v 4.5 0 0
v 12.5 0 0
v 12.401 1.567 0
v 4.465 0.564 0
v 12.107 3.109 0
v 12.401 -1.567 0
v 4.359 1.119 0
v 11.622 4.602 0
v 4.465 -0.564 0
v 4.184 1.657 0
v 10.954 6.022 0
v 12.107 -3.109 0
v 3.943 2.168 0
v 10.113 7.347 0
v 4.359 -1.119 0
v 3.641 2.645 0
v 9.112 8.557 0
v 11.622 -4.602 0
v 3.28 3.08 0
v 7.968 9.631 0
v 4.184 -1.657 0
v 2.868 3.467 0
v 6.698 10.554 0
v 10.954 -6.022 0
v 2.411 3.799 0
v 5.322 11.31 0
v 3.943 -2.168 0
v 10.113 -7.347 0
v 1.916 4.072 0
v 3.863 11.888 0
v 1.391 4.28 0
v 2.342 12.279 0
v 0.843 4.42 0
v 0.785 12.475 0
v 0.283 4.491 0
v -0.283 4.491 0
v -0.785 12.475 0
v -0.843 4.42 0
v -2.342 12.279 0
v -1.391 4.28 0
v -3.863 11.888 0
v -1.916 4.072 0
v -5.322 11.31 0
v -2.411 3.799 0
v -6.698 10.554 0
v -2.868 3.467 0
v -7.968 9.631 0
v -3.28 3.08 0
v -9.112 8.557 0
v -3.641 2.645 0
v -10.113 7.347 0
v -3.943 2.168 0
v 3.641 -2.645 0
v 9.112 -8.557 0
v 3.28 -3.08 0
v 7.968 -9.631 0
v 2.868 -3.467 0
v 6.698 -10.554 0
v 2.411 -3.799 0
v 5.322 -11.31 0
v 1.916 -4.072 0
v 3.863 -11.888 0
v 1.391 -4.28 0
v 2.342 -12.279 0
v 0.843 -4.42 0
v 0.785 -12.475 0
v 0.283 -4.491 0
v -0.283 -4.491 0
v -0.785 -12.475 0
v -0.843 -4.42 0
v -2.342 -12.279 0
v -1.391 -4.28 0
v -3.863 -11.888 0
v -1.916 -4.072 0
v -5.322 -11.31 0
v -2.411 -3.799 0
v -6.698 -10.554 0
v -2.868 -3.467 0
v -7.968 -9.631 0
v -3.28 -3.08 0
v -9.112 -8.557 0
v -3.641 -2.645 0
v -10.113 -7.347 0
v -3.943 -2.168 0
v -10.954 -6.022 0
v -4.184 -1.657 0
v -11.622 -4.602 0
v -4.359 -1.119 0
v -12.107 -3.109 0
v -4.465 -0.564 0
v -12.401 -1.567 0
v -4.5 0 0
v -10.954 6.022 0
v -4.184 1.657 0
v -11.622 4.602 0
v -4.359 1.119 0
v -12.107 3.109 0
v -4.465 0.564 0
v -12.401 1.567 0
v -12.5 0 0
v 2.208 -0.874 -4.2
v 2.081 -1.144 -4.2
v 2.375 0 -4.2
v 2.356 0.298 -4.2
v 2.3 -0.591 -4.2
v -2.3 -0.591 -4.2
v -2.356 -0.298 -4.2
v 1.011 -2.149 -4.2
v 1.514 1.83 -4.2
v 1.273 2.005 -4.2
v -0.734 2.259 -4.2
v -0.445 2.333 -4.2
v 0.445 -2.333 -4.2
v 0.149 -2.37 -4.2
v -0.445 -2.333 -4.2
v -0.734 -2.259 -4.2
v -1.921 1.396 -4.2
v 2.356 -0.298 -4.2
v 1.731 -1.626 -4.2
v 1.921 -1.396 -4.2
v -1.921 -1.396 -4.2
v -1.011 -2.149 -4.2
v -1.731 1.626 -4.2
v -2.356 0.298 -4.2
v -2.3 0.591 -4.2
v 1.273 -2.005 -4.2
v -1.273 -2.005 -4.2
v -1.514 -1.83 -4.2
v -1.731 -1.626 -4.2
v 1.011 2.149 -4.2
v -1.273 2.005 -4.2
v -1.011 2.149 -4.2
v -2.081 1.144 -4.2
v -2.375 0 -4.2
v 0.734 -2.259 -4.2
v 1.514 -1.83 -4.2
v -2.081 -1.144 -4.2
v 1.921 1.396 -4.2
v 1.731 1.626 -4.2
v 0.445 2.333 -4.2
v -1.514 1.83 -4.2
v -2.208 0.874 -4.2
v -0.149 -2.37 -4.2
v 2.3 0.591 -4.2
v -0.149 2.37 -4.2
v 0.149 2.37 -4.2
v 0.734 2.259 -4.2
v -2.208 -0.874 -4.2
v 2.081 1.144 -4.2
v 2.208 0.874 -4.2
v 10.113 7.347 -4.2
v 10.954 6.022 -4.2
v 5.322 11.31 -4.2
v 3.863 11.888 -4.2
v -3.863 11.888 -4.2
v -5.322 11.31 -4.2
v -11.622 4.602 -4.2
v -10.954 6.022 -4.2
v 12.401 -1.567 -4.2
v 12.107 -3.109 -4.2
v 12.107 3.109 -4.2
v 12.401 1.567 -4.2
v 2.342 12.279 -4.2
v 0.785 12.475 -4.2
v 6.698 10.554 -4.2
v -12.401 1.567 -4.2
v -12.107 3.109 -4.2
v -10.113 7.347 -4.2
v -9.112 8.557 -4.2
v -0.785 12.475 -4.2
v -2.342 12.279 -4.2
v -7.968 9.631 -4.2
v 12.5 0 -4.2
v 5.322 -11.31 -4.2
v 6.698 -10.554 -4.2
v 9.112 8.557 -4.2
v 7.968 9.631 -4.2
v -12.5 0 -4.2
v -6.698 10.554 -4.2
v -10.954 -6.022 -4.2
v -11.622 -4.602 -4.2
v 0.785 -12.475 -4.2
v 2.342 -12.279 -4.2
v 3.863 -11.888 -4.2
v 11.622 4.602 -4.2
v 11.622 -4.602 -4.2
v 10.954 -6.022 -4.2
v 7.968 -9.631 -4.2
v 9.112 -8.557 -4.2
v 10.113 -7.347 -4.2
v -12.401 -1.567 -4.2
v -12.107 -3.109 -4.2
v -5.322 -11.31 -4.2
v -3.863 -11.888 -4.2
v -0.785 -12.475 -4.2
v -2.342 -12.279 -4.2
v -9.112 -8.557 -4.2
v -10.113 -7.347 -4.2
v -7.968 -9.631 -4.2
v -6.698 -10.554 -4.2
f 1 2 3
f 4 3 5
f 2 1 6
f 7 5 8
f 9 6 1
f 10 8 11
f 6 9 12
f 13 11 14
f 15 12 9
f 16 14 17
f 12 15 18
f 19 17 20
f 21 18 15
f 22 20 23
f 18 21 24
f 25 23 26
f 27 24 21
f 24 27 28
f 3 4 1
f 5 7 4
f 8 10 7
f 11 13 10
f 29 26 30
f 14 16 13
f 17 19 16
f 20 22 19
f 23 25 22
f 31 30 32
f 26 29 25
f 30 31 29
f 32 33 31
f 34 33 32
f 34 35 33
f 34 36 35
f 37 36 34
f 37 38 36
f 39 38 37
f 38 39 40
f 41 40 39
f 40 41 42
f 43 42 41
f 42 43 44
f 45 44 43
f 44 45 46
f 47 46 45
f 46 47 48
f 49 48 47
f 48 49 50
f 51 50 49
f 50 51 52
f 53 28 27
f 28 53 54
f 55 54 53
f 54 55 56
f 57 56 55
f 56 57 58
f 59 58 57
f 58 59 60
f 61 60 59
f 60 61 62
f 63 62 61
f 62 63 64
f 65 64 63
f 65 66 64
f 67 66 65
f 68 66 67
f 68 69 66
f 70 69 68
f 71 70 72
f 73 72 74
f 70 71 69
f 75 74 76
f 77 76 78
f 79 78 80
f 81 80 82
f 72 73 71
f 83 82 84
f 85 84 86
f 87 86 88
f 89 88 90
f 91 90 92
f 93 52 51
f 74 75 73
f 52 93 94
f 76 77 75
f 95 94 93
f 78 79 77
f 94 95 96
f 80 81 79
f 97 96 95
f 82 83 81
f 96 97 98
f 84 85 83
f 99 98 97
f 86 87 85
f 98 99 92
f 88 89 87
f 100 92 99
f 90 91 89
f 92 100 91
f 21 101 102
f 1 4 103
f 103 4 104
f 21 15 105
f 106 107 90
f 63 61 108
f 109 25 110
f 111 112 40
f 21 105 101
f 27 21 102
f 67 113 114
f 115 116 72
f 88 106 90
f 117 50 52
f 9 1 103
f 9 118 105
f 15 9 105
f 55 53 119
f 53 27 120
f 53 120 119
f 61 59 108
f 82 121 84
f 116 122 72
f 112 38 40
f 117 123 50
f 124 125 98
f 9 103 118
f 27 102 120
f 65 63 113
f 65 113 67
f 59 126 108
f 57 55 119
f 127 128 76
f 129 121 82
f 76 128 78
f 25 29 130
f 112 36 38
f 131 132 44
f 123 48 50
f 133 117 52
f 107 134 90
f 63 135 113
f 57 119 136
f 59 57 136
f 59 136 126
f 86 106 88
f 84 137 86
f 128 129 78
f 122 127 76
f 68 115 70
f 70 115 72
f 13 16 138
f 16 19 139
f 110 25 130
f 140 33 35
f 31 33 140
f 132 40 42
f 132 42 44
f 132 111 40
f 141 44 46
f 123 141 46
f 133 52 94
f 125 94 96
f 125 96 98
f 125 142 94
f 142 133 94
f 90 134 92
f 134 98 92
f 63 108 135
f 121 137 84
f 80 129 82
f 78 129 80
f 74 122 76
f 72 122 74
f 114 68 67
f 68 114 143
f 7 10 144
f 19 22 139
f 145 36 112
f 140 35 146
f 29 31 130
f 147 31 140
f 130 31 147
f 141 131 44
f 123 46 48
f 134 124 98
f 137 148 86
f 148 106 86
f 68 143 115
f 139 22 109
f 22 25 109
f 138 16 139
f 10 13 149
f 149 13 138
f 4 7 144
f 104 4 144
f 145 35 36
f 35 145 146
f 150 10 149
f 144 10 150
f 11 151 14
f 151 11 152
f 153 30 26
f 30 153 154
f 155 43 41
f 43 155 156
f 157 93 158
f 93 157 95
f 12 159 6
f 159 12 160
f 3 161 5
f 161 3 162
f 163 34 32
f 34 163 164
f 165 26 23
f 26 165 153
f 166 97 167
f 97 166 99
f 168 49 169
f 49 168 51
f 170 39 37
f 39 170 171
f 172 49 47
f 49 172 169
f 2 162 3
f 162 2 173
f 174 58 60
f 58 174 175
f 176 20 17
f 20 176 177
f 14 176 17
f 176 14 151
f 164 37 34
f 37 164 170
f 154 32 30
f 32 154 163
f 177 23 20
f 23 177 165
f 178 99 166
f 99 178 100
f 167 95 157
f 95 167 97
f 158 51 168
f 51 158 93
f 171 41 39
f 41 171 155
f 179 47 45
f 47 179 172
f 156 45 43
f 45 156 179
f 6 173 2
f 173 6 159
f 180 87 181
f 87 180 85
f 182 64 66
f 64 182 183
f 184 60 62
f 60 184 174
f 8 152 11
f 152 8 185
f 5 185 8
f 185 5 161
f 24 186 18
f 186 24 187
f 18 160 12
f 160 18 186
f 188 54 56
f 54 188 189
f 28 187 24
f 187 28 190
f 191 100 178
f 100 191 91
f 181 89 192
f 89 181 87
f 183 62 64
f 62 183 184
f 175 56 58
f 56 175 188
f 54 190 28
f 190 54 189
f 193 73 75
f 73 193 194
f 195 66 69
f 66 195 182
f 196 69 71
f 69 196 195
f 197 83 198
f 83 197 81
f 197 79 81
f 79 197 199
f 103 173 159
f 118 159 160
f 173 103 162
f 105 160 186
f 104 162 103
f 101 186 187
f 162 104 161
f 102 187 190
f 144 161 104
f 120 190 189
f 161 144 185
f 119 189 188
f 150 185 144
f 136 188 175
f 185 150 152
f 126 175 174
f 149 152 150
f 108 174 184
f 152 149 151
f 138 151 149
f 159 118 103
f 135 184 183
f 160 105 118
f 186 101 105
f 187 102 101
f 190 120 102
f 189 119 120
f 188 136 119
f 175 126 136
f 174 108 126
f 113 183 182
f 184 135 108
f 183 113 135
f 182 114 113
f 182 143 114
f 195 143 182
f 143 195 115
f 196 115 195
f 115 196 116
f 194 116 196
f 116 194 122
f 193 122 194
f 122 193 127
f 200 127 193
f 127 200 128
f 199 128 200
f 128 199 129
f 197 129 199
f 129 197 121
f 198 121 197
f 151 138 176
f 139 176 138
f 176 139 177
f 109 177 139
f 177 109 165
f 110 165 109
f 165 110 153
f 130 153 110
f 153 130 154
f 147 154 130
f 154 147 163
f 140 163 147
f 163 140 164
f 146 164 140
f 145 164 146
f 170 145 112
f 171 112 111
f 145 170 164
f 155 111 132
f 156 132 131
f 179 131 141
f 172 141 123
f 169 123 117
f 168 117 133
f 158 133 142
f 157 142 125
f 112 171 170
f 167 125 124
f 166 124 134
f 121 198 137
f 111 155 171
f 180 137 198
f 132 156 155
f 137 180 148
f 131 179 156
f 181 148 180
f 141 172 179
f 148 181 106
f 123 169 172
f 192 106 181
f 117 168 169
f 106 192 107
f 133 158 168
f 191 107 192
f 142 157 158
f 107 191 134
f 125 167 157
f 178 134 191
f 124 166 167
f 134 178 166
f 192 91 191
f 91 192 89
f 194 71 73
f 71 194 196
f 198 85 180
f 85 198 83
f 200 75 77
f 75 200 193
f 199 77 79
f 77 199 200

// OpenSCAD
$fn = 50;

difference() {
	union() {
		translate(v = [0, 0, -4.2]) {
			cylinder(h = 4.2, r = 12.5);
		}
	}
	union() {
		translate(v = [0, 0, 0]) {
			rotate(a = [0, 0, 0]) {
				difference() {
					union() {
						translate(v = [0, 0, -7.2]) {
							cylinder(h = 7.2, r = 2.25);
						}
						translate(v = [0, 0, -4.2]) {
							cylinder(h = 4.2, r1 = 2.375, r2 = 4.5);
						}
						translate(v = [0, 0, -7.2]) {
							cylinder(h = 7.2, r = 2.375);
						}
						translate(v = [0, 0, -7.2]) {
							cylinder(h = 7.2, r = 2.25);
						}
					}
					union();
				}
			}
		}
	}
}
